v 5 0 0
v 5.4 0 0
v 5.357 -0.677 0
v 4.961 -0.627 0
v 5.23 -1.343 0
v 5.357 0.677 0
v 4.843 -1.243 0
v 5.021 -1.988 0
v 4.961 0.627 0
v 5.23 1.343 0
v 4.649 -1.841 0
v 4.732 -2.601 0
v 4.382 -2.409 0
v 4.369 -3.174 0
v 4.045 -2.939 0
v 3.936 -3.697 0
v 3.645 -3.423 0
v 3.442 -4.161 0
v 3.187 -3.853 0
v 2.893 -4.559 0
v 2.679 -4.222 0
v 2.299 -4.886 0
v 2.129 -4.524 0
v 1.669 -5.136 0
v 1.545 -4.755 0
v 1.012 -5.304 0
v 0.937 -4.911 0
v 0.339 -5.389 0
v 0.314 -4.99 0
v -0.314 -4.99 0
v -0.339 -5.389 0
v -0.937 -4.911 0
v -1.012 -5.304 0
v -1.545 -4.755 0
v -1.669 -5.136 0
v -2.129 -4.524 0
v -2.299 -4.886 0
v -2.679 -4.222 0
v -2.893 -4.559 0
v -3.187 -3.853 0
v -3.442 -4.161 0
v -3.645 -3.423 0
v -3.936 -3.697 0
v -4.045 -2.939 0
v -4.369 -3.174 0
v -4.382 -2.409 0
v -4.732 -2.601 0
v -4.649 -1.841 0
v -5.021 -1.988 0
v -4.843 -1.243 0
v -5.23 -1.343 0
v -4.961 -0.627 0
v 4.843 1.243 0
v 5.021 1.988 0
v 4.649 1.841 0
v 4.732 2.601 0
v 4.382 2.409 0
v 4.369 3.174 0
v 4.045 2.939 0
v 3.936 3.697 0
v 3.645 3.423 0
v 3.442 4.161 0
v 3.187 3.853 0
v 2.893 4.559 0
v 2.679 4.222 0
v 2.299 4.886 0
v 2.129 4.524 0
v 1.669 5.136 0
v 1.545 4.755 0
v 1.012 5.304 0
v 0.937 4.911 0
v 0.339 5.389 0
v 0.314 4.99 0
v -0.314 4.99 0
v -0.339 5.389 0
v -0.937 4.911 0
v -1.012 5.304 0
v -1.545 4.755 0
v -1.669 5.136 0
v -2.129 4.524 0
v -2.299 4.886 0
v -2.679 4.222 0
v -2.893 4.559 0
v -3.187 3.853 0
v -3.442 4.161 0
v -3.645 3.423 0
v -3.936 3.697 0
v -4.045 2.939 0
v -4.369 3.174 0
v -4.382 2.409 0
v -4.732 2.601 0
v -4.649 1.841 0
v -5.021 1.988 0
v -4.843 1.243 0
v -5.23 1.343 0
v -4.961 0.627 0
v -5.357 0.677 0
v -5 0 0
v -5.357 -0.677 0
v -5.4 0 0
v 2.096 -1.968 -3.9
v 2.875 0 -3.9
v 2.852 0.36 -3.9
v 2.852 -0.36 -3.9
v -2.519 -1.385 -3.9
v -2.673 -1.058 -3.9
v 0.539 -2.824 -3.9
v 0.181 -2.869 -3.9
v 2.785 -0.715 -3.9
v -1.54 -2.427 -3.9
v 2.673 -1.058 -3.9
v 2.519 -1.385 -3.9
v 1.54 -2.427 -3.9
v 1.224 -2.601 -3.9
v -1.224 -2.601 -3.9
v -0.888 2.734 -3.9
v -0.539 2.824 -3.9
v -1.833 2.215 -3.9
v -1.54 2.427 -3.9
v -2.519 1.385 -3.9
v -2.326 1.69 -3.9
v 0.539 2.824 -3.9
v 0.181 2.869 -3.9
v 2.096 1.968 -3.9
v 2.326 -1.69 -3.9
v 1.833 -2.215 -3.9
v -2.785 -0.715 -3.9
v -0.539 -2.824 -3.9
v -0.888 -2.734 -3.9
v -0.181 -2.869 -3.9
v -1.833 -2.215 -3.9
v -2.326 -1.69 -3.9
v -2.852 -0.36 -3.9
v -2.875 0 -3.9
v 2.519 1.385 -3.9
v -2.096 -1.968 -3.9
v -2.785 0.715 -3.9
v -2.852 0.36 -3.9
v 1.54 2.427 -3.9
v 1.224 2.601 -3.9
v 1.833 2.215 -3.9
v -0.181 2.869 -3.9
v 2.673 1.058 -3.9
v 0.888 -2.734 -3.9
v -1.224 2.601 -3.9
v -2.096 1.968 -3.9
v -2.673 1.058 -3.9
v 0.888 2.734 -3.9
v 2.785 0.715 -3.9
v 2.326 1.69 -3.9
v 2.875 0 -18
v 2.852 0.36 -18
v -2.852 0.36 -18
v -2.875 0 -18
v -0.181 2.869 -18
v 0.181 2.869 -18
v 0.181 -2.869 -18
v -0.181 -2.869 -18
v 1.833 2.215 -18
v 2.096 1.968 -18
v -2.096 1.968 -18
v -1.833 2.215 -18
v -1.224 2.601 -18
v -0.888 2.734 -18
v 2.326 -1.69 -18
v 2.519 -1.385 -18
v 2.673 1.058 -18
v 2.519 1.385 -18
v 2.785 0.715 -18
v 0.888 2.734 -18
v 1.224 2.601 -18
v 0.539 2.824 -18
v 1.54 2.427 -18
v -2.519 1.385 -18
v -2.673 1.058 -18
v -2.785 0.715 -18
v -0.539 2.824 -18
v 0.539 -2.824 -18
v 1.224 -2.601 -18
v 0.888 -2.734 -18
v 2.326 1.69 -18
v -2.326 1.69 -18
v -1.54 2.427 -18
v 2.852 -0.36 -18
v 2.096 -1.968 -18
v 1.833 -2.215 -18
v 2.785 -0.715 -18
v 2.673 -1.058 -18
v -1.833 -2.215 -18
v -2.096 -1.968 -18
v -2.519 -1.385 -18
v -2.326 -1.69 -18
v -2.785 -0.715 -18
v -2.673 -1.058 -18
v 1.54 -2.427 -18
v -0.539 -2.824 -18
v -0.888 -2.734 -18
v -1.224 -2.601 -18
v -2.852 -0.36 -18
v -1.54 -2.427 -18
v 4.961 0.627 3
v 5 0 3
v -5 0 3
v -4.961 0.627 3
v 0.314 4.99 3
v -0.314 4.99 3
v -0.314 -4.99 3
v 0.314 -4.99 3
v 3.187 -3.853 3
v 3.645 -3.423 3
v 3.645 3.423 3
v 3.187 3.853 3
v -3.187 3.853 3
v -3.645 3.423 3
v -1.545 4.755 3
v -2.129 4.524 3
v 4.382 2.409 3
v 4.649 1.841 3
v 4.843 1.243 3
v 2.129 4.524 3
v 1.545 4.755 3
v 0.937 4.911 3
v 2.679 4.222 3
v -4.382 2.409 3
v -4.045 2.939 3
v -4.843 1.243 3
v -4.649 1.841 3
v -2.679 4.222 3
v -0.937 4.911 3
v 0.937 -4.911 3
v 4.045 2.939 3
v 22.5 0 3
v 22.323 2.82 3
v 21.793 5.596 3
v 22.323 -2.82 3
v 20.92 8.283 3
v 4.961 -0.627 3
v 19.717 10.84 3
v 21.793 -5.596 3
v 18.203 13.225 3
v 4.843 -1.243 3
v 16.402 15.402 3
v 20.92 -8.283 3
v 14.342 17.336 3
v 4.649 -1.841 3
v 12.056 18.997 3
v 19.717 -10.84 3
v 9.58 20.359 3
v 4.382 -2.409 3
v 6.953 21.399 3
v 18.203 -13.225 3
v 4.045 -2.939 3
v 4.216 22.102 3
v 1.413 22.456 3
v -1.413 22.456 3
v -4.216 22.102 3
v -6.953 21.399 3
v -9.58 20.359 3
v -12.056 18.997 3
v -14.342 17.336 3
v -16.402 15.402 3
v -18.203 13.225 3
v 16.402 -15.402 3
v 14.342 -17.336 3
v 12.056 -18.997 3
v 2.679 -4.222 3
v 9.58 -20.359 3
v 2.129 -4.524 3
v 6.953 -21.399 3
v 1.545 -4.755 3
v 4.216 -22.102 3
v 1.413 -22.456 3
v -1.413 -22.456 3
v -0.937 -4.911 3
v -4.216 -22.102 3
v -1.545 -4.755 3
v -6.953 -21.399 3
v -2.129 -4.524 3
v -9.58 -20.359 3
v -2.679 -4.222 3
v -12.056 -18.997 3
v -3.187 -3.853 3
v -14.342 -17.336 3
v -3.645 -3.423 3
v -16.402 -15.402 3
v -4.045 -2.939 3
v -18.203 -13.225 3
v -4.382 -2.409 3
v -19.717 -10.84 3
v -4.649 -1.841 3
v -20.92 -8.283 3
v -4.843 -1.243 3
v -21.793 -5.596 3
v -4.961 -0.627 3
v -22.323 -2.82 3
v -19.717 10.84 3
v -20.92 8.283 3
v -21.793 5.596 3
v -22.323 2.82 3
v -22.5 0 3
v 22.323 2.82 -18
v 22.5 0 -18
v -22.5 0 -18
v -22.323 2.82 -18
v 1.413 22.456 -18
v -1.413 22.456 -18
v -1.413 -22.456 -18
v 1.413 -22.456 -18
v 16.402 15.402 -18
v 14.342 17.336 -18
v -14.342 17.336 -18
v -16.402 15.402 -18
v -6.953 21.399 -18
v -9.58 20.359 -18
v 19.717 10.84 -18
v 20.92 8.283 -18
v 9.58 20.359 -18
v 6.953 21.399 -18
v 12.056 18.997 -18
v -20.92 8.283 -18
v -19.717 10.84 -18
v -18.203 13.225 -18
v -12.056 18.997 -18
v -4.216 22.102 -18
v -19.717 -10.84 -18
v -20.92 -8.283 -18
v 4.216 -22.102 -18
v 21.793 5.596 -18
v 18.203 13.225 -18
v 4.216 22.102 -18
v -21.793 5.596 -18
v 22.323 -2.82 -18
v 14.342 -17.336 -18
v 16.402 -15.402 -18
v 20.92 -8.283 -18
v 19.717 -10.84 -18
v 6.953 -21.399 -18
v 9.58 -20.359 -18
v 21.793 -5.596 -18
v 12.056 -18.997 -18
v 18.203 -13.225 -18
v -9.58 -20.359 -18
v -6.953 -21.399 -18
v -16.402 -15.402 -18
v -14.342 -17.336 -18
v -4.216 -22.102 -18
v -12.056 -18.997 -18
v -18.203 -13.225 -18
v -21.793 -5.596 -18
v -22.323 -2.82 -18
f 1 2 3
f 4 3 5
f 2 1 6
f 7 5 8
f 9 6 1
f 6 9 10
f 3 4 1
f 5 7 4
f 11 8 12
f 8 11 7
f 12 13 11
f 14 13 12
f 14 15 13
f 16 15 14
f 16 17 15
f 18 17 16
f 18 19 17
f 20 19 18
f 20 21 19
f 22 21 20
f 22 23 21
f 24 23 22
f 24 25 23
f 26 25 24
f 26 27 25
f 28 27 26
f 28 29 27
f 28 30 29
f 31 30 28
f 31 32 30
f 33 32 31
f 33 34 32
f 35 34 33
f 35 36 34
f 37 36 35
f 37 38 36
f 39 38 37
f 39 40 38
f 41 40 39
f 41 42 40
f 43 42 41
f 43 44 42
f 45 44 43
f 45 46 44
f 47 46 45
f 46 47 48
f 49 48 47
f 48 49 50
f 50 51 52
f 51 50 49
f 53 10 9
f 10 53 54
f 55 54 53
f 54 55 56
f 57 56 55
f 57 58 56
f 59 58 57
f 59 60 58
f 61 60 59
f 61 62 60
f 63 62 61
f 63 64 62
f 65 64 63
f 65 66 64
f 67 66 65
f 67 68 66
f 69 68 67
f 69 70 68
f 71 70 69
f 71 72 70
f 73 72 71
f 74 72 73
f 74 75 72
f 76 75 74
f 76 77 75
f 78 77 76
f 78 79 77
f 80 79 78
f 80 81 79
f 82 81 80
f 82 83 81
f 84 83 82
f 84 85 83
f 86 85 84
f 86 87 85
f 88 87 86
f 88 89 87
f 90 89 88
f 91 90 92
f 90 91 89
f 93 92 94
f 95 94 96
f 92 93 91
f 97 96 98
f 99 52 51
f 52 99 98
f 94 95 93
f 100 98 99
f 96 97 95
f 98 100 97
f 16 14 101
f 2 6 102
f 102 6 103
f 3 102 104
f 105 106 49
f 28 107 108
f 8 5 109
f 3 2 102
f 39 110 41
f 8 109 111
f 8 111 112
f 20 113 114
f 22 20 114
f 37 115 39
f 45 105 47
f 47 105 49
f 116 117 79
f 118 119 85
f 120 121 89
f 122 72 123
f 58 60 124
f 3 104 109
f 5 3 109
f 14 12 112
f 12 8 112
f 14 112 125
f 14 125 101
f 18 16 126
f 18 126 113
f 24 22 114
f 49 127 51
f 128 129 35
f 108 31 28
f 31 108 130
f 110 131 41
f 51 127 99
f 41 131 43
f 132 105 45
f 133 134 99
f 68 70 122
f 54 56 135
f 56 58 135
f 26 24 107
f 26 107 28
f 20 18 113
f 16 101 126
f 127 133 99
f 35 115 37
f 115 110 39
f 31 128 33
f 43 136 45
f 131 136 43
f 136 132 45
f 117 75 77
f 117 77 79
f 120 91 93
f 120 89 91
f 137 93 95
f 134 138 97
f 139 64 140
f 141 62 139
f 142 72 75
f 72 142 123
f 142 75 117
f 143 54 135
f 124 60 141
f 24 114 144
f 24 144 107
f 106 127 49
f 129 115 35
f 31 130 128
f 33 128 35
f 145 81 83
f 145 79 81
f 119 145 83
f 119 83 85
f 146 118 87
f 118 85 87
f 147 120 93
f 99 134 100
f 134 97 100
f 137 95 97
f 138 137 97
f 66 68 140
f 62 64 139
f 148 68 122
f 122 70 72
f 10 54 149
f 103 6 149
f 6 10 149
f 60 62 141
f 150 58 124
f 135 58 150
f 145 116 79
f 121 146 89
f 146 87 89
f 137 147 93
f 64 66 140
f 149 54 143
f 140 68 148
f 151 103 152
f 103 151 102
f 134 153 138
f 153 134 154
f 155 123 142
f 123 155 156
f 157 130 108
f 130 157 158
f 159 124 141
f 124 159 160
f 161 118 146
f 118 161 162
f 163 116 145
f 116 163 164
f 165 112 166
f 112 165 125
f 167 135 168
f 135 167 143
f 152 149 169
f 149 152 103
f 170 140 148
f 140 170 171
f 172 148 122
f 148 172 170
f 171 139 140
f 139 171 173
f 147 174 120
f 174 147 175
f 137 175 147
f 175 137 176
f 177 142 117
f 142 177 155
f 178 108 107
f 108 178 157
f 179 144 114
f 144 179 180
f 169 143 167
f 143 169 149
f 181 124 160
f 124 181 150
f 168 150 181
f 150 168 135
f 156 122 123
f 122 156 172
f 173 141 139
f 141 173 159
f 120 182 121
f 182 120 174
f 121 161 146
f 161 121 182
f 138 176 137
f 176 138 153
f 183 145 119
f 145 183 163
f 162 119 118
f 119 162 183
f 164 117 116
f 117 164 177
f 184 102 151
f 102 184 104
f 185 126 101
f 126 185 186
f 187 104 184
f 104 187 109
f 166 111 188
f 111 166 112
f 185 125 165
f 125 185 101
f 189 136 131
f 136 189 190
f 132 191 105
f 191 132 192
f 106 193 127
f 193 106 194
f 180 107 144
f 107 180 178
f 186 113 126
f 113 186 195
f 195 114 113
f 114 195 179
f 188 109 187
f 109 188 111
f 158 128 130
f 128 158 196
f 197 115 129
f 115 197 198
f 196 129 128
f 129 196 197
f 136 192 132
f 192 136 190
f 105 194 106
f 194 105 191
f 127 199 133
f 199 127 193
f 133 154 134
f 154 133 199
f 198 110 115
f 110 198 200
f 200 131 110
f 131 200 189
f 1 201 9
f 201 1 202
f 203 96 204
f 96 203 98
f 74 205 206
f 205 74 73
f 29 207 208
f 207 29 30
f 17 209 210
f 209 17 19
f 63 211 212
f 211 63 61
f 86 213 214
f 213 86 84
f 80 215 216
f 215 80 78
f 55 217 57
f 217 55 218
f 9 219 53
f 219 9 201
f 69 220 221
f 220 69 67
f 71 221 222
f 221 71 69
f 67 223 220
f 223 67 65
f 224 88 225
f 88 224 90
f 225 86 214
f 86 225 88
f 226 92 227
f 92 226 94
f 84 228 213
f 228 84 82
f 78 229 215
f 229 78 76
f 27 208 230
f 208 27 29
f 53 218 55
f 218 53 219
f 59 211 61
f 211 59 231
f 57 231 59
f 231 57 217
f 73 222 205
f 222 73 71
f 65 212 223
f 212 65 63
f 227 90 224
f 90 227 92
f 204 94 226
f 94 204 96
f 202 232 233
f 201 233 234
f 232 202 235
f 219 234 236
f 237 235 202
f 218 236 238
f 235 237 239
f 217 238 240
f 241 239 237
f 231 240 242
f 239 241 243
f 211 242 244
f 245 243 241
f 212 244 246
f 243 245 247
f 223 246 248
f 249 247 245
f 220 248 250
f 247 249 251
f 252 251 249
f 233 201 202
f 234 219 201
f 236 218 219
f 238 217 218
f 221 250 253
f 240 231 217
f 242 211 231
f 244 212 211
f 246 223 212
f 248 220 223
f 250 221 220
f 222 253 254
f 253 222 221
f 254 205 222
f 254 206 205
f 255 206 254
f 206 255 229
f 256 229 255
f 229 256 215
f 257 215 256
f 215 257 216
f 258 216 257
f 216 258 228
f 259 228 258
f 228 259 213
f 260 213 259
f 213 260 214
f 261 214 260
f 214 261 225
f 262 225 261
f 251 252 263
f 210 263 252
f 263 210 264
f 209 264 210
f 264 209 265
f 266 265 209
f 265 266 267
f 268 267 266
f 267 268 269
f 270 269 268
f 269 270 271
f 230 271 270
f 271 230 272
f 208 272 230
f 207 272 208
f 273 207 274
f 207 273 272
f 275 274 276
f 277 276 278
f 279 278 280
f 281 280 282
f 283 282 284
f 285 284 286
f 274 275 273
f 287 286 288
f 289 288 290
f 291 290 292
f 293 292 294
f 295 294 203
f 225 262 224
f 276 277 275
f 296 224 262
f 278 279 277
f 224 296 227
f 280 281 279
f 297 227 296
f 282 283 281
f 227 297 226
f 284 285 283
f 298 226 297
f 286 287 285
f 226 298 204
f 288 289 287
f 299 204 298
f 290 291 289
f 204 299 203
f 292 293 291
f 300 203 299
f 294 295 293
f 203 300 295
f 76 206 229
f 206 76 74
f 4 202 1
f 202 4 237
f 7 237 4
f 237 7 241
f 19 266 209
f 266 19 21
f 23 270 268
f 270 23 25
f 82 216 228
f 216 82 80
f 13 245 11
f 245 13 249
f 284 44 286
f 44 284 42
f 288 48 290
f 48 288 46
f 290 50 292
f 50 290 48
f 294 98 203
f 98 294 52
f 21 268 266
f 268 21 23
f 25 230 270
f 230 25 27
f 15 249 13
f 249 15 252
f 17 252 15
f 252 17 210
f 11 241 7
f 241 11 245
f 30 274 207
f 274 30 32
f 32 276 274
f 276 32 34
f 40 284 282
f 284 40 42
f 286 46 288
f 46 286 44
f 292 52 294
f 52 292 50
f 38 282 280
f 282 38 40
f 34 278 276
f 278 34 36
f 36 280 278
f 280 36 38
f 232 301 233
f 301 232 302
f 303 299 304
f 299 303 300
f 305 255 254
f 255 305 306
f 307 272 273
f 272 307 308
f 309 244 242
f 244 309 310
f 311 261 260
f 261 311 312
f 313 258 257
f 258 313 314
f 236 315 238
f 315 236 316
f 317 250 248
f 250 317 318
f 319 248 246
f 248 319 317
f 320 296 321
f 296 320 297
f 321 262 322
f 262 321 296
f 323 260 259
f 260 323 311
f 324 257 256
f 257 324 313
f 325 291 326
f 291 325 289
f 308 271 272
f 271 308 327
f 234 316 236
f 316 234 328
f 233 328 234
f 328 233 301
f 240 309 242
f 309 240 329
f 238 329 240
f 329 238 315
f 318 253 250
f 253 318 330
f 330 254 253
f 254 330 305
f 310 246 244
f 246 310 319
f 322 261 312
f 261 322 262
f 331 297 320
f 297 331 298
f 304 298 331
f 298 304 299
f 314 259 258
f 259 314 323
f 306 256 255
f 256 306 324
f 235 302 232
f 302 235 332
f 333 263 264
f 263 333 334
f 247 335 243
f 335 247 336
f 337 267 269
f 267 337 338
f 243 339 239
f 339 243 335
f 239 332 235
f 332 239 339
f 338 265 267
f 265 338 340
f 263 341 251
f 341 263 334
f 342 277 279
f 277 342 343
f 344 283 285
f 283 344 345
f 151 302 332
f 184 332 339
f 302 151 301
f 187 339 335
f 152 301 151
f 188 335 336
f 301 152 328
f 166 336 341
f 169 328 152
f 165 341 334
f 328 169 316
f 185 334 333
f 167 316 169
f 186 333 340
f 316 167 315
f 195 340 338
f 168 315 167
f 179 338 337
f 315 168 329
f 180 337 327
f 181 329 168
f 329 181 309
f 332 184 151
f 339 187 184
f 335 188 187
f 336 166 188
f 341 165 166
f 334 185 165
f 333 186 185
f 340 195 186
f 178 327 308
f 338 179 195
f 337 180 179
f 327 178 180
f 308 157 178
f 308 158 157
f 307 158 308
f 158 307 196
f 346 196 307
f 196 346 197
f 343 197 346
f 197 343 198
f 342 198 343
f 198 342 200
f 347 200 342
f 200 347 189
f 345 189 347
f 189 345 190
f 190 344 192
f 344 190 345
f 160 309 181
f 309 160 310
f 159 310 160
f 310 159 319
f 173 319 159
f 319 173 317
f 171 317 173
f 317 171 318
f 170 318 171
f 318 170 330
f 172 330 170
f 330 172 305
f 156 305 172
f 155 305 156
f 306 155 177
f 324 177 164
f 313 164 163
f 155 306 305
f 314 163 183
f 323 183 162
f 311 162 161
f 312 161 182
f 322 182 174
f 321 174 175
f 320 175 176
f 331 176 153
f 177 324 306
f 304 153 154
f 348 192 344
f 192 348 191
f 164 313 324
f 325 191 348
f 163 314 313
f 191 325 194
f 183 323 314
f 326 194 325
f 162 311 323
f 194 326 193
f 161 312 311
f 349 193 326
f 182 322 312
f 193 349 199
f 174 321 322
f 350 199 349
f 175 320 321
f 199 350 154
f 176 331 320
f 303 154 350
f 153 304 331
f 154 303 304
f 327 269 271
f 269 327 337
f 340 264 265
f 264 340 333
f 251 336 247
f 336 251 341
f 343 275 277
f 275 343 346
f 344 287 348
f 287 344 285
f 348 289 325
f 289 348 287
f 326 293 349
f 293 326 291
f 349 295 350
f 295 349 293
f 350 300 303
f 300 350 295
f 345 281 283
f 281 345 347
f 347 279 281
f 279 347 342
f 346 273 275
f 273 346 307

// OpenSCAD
$fn = 50;

difference() {
	union() {
		translate(v = [0, 0, -18.0]) {
			cylinder(h = 21, r = 22.5);
		}
	}
	union() {
		translate(v = [0, 0, 0]) {
			rotate(a = [0, 0, 0]) {
				difference() {
					union() {
						translate(v = [0, 0, -21.0]) {
							cylinder(h = 21, r = 2.6);
						}
						translate(v = [0, 0, -3.9]) {
							cylinder(h = 3.9, r1 = 2.875, r2 = 5.4);
						}
						translate(v = [0, 0, -21.0]) {
							cylinder(h = 21, r = 2.875);
						}
						translate(v = [0, 0, -21.0]) {
							cylinder(h = 21, r = 2.6);
						}
					}
					union();
				}
			}
		}
		#cylinder(h = 3, r = 5.0);
	}
}
